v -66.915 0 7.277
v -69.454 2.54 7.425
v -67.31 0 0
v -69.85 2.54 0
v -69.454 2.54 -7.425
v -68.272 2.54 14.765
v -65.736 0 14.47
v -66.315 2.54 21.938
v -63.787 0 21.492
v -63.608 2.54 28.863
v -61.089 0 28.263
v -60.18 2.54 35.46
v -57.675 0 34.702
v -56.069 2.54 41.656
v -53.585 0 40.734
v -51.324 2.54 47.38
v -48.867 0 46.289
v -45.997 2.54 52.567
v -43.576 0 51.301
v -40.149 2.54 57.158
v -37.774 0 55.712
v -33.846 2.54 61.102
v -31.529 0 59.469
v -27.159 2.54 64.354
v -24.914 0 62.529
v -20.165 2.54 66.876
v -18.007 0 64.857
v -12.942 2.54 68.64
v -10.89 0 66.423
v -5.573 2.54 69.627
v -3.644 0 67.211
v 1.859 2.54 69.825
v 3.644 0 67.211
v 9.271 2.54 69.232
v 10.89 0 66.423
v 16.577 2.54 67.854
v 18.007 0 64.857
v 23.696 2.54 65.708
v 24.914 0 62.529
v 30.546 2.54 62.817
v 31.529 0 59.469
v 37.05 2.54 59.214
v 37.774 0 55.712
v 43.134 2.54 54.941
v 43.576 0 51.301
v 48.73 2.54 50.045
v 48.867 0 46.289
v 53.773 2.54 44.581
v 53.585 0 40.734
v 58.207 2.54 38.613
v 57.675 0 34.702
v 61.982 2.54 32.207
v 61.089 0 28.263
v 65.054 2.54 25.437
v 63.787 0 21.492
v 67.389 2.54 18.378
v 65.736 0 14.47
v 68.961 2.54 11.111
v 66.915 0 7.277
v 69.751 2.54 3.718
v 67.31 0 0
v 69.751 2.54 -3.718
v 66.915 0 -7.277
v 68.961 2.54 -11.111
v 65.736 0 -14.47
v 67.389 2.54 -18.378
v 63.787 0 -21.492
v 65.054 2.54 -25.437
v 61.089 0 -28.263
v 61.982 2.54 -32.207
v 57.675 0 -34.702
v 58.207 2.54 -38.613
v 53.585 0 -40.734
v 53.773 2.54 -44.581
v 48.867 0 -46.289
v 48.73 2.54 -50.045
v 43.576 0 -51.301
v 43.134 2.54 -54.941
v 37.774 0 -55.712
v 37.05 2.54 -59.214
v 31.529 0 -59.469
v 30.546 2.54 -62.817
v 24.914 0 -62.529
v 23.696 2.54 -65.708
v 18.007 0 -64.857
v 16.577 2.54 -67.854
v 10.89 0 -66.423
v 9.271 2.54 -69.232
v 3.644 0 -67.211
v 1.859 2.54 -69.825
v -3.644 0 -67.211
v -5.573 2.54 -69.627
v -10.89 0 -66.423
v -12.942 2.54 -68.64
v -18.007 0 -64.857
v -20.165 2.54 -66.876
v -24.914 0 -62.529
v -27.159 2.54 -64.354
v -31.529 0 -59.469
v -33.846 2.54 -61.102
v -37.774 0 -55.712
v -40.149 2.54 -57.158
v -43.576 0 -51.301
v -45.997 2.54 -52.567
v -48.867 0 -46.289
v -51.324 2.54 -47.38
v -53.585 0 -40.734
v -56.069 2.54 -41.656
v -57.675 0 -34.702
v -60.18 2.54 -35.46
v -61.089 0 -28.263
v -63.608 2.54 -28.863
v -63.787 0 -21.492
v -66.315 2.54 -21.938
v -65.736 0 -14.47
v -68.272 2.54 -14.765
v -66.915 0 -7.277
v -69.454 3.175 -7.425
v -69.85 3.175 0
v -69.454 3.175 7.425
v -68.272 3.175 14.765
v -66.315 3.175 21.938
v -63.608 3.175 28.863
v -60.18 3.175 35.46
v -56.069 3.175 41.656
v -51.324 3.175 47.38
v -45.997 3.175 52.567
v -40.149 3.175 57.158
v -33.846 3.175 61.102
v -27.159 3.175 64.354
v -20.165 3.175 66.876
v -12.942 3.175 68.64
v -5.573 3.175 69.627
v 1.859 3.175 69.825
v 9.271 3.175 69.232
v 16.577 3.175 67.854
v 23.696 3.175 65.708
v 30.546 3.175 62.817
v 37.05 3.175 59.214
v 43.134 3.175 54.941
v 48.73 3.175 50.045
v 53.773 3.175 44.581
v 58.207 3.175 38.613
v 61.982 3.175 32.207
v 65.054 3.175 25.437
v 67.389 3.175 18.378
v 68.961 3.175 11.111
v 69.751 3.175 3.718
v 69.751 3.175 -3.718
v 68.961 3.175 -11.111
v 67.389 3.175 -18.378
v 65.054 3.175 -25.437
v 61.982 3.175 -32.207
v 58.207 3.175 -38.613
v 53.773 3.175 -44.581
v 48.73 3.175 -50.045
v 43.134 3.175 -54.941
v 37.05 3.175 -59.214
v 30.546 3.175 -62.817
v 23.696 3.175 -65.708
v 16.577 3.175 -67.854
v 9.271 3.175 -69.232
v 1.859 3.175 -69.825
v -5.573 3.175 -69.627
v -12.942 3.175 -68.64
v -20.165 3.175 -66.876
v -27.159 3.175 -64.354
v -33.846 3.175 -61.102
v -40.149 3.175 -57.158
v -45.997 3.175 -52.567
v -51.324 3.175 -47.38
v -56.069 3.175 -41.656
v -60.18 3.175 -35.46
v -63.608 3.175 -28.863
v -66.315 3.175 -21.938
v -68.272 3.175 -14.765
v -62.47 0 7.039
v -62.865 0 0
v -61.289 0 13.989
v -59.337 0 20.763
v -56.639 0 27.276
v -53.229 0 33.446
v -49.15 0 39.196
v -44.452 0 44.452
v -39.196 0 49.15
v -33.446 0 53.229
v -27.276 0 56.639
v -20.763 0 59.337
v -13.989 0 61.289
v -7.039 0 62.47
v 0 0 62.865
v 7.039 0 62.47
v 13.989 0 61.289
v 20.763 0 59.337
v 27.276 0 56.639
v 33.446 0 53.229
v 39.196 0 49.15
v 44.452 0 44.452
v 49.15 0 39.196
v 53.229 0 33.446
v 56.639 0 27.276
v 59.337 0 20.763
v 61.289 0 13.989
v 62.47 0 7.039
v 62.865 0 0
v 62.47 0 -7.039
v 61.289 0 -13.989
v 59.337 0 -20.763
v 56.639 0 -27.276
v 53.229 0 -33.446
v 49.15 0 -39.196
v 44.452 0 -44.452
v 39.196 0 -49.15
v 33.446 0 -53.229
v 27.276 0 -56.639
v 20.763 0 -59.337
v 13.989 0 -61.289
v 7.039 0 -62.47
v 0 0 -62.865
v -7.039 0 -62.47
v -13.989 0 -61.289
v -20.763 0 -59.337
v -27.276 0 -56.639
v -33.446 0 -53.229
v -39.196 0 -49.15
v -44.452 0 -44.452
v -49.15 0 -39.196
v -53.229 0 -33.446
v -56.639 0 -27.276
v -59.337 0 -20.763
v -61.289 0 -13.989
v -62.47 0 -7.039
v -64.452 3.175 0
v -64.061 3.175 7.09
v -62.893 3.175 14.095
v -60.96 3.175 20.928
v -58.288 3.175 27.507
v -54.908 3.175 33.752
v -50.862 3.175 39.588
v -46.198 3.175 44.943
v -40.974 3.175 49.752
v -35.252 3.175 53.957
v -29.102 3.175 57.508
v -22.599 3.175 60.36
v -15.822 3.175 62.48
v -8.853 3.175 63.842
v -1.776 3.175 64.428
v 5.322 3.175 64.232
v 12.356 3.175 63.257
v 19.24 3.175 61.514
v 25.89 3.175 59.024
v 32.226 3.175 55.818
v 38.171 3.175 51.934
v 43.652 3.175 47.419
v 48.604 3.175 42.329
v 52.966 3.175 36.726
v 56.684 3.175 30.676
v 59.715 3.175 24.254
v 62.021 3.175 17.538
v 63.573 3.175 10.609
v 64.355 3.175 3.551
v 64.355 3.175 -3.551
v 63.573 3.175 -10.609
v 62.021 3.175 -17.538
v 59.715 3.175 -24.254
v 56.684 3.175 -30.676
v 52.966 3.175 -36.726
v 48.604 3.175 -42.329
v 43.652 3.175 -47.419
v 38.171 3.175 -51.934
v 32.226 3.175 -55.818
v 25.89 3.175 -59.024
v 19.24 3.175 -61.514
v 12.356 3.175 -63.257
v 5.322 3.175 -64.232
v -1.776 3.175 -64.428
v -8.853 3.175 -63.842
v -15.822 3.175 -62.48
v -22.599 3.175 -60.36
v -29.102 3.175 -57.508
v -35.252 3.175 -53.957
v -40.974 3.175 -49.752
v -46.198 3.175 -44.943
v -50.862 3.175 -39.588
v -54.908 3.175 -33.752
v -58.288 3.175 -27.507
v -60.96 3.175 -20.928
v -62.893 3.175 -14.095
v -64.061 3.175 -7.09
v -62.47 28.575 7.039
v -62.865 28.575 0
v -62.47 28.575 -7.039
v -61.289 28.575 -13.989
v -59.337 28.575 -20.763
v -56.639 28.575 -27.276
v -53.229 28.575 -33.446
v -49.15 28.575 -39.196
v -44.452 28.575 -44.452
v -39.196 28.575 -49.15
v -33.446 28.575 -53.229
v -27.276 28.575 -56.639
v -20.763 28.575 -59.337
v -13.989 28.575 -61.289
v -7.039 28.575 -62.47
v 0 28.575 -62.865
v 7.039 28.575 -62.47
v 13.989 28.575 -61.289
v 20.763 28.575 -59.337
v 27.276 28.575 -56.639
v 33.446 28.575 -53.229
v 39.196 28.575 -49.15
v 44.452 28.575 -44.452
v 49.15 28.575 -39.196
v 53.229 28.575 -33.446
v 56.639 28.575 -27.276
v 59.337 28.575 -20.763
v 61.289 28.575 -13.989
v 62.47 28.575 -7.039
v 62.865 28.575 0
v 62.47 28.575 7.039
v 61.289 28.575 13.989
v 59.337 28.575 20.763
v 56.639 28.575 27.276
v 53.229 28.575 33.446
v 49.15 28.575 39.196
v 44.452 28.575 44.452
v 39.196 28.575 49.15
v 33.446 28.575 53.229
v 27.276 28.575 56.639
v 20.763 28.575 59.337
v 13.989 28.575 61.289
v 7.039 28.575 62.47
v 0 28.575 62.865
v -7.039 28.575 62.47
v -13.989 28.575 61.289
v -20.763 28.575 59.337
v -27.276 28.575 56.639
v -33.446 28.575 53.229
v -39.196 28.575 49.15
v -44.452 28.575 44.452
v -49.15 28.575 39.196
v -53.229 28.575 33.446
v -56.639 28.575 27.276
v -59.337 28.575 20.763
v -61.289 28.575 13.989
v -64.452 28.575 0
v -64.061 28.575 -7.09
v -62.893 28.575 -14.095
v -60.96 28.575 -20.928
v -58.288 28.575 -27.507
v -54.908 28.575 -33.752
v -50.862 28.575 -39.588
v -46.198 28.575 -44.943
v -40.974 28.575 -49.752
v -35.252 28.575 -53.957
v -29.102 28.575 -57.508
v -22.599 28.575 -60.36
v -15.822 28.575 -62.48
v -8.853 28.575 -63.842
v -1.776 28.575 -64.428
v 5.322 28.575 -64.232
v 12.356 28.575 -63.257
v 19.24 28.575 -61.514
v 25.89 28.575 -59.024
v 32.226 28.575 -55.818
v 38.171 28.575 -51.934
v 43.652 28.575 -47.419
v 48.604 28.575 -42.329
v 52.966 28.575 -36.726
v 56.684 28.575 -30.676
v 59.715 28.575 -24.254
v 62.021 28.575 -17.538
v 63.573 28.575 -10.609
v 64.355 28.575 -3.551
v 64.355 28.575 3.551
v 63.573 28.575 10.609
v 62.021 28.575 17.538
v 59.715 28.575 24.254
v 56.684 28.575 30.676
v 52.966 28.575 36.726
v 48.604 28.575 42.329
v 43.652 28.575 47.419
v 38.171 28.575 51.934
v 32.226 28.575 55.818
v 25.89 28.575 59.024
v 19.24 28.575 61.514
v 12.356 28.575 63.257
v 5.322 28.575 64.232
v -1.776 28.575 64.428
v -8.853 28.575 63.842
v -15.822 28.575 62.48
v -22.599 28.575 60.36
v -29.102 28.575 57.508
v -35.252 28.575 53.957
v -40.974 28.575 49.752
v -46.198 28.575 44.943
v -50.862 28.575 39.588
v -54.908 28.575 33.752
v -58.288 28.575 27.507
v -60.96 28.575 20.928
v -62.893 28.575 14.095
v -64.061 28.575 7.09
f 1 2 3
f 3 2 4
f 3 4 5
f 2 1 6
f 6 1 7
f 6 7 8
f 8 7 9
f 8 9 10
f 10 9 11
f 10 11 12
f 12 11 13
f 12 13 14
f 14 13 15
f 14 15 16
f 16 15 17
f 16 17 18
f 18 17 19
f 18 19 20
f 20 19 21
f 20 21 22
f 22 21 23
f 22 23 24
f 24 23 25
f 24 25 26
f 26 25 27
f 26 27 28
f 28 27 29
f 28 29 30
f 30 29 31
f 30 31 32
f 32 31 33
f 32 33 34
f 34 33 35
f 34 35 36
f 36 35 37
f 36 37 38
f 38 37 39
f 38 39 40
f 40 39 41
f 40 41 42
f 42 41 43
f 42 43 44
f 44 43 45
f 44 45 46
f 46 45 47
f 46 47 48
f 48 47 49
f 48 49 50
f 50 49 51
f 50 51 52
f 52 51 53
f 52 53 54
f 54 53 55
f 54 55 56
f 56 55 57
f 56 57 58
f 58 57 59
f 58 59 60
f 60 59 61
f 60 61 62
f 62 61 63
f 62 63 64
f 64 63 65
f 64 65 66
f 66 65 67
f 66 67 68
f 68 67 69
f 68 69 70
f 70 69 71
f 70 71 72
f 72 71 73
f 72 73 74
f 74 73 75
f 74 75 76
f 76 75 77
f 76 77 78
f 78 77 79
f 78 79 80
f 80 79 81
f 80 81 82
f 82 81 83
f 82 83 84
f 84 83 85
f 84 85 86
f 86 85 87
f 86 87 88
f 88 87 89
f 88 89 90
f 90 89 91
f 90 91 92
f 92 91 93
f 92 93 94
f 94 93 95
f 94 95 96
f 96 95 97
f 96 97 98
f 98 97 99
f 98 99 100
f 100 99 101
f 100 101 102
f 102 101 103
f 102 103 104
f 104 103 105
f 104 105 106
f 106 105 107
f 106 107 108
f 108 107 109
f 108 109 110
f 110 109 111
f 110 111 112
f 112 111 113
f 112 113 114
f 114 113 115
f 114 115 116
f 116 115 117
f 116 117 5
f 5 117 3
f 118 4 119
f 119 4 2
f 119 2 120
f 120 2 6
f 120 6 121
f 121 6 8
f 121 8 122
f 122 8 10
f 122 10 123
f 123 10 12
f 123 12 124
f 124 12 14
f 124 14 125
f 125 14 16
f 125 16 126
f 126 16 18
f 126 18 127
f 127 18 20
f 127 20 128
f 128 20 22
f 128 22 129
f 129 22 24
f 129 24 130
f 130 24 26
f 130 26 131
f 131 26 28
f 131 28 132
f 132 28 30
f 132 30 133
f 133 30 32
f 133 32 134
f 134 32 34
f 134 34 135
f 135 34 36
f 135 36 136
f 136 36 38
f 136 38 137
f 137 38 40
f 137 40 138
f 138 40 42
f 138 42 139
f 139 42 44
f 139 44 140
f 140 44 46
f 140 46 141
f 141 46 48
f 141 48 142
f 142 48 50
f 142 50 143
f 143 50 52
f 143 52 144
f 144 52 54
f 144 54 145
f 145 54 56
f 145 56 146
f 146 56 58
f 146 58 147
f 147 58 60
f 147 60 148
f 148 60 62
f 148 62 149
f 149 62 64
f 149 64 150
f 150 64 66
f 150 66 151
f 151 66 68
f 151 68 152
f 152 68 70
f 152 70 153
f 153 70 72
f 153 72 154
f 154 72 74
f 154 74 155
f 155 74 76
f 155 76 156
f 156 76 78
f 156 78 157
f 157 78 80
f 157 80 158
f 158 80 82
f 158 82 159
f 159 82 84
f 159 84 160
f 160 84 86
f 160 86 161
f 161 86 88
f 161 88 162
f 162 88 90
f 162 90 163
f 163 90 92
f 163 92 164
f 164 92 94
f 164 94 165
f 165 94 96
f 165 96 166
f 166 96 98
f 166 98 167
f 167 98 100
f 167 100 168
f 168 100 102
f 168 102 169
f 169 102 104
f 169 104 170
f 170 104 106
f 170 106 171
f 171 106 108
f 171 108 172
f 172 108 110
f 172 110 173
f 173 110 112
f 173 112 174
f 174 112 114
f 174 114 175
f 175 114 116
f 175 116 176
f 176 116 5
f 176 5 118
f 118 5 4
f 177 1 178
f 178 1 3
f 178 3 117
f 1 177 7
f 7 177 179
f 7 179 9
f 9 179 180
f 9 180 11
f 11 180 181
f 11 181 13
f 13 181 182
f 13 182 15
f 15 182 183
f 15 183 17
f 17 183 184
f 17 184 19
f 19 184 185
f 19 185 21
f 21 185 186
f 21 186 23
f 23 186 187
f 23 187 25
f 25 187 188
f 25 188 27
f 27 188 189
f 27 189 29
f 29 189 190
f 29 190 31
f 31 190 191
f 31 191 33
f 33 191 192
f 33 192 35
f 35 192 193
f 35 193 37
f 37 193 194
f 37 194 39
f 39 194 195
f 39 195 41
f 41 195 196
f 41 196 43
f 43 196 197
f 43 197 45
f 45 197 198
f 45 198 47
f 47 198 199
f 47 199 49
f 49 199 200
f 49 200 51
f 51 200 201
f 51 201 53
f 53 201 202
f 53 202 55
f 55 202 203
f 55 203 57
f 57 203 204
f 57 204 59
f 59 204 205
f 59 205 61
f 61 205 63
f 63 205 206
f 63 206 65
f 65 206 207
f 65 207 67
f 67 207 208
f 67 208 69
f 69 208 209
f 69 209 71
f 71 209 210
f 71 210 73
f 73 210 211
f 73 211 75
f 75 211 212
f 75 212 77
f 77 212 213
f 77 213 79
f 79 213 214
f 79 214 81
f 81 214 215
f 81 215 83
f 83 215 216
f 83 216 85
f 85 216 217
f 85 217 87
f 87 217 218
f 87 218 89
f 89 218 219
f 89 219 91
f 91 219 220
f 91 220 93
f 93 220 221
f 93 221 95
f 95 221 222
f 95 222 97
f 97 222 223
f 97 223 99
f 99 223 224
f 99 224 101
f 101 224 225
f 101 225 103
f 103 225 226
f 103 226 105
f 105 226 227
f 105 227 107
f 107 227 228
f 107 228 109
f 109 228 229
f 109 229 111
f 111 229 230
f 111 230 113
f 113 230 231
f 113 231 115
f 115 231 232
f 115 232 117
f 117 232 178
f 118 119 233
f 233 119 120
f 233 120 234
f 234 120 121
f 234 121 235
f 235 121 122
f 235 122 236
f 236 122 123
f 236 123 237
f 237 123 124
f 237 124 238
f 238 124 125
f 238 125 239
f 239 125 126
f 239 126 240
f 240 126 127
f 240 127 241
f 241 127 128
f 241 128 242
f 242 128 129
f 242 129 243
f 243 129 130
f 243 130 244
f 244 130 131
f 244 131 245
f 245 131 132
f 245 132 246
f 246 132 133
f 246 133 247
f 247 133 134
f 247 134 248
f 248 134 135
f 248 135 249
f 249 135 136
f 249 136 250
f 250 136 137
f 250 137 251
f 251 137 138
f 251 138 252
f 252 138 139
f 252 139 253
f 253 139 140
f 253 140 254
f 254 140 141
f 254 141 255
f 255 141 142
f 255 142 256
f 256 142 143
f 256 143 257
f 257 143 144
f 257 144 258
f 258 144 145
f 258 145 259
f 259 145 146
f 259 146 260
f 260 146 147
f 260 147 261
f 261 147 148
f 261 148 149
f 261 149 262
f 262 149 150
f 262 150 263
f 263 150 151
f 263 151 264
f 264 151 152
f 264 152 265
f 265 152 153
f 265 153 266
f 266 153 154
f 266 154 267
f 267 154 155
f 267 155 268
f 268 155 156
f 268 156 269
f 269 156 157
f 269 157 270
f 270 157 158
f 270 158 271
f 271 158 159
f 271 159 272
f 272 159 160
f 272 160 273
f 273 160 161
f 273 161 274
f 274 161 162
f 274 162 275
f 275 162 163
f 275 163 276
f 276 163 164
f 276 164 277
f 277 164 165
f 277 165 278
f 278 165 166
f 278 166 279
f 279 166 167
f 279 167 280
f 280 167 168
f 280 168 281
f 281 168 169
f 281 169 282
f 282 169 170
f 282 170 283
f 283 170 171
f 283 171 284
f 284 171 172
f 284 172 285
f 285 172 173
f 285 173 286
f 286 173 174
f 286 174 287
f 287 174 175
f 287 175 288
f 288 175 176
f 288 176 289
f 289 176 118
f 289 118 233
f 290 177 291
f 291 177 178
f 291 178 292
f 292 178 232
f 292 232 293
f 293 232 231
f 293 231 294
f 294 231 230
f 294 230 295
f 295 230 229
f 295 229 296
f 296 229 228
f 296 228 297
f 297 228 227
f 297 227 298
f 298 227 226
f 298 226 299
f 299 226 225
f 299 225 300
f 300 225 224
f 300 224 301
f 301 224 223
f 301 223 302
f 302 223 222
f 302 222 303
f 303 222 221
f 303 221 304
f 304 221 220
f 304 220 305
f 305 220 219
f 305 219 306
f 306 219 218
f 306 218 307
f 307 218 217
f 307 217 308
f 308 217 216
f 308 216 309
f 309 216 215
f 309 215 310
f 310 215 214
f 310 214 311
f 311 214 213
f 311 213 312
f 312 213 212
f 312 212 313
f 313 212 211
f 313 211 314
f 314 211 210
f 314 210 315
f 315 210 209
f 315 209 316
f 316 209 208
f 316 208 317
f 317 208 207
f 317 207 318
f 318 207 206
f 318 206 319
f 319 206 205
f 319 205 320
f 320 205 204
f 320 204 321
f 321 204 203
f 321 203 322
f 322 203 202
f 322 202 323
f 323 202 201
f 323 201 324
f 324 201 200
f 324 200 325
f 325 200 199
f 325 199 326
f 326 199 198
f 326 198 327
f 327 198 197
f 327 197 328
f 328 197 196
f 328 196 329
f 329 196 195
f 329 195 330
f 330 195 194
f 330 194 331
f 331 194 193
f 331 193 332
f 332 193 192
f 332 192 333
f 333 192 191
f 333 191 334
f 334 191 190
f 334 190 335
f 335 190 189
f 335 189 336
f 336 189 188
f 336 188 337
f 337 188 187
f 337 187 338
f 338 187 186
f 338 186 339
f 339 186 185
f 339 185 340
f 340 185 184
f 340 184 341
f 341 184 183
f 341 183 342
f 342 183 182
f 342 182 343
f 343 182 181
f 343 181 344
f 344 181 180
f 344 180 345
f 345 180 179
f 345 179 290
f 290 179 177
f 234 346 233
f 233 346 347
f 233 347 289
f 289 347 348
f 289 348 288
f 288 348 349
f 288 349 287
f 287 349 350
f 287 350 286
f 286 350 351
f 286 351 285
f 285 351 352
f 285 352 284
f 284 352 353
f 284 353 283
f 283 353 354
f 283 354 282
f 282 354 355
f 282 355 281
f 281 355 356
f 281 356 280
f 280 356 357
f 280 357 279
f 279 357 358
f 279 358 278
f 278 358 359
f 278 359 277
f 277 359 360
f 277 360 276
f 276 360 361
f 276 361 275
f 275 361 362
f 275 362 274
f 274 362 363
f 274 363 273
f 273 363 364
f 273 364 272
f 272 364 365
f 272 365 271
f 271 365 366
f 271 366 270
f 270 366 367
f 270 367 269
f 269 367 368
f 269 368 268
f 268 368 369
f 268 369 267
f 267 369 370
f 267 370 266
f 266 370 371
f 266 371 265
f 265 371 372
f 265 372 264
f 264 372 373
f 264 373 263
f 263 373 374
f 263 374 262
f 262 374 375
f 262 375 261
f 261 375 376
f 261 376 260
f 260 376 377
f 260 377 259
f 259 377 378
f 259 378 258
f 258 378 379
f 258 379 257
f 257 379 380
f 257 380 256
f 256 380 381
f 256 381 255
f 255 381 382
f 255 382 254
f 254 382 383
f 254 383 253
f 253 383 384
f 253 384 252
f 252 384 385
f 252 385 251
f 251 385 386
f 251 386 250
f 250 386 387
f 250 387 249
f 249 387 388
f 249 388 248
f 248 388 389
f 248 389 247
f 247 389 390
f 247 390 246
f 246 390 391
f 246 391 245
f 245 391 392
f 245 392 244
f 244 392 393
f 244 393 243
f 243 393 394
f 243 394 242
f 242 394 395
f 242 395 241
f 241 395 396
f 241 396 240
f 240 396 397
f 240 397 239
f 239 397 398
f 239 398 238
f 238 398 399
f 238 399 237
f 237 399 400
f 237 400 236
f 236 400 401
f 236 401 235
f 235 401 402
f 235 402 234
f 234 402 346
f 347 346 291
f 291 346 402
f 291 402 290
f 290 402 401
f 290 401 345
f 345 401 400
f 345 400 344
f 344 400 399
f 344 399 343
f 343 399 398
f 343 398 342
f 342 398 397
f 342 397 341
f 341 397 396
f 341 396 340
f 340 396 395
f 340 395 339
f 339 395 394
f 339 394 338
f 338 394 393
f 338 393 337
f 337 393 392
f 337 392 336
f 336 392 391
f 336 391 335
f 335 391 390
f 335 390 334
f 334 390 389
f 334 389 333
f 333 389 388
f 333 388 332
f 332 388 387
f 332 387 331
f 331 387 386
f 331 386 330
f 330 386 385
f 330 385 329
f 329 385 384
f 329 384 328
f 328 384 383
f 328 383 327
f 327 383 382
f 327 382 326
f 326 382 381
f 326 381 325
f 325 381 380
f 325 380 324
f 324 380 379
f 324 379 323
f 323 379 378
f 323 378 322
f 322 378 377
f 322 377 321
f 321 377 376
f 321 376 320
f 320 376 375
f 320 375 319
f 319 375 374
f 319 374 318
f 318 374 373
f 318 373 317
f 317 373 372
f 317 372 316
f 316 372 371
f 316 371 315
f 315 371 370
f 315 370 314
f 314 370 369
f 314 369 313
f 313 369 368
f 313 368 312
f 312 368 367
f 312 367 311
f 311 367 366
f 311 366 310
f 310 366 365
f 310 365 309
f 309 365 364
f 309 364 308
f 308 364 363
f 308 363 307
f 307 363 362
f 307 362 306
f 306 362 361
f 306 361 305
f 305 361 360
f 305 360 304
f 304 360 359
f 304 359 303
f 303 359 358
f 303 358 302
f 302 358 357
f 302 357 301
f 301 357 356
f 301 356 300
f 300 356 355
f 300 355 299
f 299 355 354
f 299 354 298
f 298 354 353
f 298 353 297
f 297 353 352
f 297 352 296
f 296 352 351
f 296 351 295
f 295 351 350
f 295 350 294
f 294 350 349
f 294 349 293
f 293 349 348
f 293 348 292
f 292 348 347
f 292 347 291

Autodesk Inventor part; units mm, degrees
ref_plane "YZ Plane" through (0, 0, 0) normal (1, 0, 0) x (0, 1, 0)
ref_plane "XZ Plane" through (0, 0, 0) normal (0, 1, 0) x (-1, 0, 0)
ref_plane "XY Plane" through (0, 0, 0) normal (0, 0, 1) x (1, 0, 0)
sketch "Sketch1" plane through (0, 0, 0) normal (0, 1, 0) x (-1, 0, 0)
  circle A0 centre (0, 0) radius 62.865
  circle A1 centre (0, 0) radius 69.85
  circle A2 centre (0, 0) radius 64.4525
  dimension "d0" = 125.73
  dimension "d1" = 139.7
  dimension "d2" = 1.5875
extrude "Extrusion1" add sketch "Sketch1" along normal blind 28.575 contours A2
extrude "Extrusion2" add sketch "Sketch1" along normal blind 3.175 contours A1
chamfer "Chamfer1" distance 2.54 angle 45 1 edges at (69.85, 0, 0)
properties part number "Bevel V1_3DPrint"
